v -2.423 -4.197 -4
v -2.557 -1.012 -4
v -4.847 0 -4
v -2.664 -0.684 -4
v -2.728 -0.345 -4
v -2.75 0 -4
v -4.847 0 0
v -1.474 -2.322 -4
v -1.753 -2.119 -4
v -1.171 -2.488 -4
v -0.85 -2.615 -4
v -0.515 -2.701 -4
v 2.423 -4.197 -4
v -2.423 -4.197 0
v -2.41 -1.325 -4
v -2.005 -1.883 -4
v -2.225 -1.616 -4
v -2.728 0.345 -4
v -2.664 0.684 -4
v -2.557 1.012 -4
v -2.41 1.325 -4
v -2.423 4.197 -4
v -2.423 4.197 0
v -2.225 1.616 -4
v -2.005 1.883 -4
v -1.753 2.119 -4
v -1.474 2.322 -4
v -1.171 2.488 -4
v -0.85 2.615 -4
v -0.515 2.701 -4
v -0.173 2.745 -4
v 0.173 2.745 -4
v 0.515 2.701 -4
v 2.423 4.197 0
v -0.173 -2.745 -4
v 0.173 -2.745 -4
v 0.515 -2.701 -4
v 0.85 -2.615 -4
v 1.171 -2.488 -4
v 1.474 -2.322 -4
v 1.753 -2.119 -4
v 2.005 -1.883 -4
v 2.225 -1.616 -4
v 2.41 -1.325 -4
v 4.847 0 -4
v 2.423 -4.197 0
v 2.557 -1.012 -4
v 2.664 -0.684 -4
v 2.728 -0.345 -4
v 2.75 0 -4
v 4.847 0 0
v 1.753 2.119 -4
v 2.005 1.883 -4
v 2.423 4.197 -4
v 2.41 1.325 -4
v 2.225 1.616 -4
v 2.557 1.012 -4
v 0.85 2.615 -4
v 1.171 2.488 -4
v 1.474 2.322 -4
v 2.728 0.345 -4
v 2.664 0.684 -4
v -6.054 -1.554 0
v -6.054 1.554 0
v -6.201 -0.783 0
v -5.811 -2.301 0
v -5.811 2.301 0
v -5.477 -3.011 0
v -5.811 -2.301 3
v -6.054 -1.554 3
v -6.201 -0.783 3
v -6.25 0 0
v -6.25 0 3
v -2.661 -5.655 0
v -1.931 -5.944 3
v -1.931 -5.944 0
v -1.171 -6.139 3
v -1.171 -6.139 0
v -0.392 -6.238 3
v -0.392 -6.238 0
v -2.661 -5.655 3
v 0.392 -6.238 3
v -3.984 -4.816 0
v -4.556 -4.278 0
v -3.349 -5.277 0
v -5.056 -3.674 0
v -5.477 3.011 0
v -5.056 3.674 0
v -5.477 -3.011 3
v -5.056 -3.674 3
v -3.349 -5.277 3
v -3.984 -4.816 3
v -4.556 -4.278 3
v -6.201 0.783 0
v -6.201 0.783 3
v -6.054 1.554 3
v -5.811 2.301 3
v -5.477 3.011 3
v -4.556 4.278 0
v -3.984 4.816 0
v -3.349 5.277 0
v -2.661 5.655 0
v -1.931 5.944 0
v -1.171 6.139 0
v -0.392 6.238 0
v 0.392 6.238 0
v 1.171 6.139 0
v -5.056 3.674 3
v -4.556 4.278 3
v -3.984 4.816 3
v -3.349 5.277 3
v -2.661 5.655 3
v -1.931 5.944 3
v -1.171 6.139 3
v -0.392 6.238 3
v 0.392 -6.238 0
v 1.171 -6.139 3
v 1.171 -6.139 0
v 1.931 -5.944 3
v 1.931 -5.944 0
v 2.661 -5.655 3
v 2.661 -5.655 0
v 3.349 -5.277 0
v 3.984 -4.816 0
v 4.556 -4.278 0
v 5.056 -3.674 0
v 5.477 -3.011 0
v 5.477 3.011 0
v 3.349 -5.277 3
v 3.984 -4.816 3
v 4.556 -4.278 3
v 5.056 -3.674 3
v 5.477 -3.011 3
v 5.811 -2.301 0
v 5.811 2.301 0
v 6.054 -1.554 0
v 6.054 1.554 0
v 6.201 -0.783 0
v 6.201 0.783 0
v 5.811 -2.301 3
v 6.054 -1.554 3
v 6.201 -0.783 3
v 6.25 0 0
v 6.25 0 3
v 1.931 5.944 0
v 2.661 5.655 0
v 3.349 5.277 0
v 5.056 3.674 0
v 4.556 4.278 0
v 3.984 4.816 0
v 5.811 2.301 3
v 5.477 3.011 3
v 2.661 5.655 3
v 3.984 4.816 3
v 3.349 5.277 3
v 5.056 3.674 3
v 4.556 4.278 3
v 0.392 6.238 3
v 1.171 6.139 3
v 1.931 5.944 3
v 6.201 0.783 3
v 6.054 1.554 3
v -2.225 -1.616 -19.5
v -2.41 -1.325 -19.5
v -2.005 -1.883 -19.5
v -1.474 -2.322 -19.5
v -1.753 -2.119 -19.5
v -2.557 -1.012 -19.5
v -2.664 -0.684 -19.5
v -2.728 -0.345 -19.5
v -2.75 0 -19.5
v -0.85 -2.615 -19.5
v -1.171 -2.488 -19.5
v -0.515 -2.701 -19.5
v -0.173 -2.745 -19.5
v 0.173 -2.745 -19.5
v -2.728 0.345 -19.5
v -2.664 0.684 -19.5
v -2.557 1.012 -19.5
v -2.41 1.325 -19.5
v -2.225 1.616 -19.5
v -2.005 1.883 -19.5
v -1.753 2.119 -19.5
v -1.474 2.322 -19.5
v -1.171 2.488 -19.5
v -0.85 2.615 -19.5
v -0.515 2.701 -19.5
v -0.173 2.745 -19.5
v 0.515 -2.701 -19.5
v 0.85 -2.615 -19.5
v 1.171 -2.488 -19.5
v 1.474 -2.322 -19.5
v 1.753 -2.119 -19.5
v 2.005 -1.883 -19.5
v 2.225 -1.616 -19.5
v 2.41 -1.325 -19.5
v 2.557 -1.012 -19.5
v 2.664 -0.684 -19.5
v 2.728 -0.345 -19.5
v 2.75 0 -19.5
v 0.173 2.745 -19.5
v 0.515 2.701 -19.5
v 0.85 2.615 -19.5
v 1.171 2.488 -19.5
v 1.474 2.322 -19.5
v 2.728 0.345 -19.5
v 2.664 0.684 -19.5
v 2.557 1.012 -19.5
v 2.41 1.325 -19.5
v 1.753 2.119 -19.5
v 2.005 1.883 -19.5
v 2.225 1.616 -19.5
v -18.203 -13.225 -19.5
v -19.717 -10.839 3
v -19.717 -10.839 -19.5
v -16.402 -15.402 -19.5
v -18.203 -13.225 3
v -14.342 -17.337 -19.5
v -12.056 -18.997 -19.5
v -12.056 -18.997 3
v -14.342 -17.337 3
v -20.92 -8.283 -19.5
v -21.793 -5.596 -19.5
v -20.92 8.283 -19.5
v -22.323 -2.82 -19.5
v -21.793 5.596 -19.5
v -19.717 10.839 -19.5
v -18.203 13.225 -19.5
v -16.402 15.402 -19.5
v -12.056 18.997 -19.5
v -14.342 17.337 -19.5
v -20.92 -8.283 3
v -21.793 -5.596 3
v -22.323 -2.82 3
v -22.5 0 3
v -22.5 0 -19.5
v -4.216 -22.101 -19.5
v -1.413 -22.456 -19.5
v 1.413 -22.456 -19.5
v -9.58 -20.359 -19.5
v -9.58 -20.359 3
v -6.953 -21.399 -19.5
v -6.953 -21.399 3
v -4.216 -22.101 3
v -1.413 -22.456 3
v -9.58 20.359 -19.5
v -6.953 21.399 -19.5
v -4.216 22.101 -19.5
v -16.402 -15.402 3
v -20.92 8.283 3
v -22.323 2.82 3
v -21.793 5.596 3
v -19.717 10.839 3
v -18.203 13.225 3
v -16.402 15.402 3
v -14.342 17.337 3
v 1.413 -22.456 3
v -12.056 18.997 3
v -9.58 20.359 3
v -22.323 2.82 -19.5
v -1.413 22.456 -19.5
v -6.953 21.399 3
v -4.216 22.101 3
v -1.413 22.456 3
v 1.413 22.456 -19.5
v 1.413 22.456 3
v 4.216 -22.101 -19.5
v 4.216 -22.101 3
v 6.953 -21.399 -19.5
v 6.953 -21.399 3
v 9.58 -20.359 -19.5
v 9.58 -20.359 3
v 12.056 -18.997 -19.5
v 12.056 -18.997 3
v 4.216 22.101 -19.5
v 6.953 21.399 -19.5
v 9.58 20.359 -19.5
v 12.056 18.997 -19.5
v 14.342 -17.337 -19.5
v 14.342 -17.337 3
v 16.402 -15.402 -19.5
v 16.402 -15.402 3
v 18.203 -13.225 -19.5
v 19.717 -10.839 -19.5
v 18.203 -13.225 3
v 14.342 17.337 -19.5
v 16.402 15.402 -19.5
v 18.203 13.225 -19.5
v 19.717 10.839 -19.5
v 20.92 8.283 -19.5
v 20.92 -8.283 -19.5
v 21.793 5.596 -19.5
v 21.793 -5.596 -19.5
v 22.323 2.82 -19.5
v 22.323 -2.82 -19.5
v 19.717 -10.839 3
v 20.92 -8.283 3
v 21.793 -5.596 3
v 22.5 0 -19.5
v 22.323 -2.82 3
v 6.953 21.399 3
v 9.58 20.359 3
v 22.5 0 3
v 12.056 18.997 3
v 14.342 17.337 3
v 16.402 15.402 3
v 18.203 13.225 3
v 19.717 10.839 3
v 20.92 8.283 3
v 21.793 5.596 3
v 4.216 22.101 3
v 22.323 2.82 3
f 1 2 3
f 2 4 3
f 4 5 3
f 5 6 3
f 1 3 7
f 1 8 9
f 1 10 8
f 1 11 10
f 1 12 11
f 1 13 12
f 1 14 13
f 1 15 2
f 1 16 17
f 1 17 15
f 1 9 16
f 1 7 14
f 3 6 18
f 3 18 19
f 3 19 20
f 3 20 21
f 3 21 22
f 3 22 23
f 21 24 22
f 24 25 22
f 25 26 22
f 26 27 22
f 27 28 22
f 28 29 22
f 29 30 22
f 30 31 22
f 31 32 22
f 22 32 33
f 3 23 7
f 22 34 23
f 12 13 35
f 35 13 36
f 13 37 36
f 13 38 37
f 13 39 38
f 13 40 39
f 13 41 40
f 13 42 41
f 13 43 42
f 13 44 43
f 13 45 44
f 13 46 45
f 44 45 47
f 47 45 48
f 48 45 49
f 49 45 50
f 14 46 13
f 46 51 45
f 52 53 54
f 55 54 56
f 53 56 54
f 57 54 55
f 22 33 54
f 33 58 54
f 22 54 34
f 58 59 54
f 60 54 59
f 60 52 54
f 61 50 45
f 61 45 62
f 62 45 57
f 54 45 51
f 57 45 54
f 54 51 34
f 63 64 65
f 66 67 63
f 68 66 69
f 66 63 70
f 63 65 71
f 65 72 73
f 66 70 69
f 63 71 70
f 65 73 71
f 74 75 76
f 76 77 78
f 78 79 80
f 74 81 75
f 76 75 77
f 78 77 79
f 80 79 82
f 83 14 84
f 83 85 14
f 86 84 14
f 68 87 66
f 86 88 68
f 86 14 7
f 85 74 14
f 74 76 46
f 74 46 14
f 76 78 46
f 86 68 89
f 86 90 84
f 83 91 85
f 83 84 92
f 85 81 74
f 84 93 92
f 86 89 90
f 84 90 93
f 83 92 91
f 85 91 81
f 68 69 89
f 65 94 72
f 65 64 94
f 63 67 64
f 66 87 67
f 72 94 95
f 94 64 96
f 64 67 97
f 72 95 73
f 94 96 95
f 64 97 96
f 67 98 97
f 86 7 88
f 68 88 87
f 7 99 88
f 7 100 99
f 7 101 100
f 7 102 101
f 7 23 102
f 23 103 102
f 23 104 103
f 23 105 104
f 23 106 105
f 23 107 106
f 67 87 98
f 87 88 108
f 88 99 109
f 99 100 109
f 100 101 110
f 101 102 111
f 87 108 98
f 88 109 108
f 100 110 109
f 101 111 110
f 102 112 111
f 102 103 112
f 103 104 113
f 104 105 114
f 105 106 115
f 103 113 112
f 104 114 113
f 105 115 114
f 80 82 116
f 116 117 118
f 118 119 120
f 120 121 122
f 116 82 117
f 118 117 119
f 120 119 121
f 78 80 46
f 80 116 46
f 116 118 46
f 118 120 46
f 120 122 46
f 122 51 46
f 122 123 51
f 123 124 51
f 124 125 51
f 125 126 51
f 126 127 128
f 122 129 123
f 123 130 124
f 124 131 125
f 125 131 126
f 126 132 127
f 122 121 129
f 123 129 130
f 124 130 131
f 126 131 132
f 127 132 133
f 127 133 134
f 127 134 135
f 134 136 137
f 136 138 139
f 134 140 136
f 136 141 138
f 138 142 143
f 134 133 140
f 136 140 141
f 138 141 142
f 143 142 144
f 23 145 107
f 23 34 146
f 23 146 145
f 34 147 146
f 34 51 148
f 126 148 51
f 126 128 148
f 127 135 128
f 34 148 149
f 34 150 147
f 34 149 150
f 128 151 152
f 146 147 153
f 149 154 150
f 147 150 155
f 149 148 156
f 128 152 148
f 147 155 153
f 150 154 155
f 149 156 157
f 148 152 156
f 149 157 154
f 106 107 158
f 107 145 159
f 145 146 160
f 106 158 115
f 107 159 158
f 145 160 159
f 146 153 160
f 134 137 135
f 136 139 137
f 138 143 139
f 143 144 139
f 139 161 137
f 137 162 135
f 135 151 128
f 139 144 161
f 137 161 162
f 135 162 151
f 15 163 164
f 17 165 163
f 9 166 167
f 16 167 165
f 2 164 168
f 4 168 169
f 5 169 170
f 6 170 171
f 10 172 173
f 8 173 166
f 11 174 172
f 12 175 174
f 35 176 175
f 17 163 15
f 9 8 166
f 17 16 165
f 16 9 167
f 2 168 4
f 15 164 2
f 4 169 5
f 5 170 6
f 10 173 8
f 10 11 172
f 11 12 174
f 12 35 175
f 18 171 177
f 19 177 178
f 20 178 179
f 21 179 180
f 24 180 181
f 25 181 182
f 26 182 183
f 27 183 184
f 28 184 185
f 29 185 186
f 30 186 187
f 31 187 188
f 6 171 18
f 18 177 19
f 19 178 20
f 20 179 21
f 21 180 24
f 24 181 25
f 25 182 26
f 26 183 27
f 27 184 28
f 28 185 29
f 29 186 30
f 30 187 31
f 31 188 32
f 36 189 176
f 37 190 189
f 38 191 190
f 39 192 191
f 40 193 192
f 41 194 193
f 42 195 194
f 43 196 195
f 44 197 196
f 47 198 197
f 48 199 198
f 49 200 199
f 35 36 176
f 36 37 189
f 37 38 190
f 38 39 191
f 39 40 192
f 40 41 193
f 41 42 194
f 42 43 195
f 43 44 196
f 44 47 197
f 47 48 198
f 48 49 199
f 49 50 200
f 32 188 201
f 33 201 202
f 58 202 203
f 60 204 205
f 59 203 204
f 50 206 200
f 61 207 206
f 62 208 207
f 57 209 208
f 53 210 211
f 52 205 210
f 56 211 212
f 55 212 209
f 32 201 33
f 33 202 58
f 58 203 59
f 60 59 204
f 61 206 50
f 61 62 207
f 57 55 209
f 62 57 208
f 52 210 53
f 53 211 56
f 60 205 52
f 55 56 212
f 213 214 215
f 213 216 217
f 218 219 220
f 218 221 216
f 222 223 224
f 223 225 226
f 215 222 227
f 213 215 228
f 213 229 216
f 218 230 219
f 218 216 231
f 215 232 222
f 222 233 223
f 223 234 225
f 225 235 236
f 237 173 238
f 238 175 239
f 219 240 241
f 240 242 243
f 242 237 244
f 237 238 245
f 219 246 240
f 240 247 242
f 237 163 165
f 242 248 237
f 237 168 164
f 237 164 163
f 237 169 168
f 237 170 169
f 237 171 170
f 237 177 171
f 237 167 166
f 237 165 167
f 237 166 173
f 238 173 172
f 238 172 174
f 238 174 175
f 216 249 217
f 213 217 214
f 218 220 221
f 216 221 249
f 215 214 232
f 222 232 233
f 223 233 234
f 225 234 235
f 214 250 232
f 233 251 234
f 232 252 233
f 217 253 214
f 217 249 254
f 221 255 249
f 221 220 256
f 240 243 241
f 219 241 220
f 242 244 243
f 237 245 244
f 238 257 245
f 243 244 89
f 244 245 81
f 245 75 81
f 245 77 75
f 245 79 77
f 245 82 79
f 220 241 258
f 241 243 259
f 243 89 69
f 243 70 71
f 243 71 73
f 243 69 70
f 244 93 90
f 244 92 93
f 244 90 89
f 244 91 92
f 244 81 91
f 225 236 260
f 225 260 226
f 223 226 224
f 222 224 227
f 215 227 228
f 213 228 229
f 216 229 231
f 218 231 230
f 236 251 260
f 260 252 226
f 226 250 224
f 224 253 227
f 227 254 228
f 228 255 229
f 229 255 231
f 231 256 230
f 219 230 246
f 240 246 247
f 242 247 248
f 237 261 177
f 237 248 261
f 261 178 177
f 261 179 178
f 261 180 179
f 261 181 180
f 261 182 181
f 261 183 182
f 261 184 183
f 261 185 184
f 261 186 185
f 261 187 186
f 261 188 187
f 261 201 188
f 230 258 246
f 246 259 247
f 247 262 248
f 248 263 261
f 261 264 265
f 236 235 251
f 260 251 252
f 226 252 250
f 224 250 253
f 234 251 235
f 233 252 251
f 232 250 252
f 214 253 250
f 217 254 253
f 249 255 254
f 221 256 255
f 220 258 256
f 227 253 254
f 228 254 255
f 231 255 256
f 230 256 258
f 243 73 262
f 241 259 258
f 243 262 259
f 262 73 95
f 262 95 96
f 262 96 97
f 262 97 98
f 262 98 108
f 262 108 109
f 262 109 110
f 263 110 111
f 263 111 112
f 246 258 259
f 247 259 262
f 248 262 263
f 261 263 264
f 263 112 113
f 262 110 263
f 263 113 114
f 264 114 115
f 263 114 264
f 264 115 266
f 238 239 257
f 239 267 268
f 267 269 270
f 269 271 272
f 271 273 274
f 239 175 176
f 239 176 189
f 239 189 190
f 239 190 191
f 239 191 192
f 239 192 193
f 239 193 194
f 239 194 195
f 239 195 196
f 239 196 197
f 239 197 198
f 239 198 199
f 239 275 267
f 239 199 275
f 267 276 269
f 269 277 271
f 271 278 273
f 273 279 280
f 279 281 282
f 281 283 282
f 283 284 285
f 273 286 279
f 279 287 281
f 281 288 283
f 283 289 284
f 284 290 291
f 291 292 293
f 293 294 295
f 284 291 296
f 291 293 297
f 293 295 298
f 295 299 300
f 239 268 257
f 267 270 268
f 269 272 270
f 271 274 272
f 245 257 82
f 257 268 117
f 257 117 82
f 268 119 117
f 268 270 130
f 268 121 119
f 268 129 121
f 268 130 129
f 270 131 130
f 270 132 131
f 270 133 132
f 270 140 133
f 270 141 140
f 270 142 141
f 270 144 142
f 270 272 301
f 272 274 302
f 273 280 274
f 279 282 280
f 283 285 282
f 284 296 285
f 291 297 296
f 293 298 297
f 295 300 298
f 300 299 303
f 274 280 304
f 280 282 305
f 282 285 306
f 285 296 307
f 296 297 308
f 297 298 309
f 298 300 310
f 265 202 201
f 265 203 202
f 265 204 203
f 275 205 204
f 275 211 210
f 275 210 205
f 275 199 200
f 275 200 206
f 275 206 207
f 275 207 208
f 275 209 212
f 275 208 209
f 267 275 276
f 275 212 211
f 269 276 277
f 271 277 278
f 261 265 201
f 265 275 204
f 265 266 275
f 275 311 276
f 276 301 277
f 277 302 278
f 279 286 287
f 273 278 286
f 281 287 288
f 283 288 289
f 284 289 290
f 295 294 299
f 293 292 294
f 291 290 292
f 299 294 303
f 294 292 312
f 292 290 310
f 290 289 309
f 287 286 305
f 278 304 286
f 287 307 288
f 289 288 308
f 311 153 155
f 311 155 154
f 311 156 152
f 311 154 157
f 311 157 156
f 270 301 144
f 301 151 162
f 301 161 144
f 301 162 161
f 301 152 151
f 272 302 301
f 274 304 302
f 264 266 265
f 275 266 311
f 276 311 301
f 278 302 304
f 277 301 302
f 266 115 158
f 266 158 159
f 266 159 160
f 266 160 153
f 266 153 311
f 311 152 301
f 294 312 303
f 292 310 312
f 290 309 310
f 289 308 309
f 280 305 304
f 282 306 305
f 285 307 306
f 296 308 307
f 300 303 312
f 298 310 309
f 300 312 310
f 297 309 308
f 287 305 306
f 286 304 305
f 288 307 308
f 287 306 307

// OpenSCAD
$fn = 50;

difference() {
	union() {
		translate(v = [0, 0, -19.5]) {
			cylinder(h = 22.5, r = 22.5);
		}
	}
	union() {
		translate(v = [0, 0, 0]) {
			rotate(a = [0, 0, 0]) {
				difference() {
					union() {
						translate(v = [0, 0, -4]) {
							linear_extrude(height = 4) {
								polygon(points = [[4.8468, 0.0], [2.4234000000000004, 4.197451927062417], [-2.423399999999999, 4.197451927062417], [-4.8468, 5.935618106107392e-16], [-2.423400000000002, -4.197451927062416], [2.423399999999997, -4.197451927062419]]);
							}
						}
					}
					union();
				}
			}
		}
		#cylinder(h = 3, r = 6.25);
		#translate(v = [0, 0, -100.0]) {
			cylinder(h = 200, r = 2.75);
		}
	}
}
